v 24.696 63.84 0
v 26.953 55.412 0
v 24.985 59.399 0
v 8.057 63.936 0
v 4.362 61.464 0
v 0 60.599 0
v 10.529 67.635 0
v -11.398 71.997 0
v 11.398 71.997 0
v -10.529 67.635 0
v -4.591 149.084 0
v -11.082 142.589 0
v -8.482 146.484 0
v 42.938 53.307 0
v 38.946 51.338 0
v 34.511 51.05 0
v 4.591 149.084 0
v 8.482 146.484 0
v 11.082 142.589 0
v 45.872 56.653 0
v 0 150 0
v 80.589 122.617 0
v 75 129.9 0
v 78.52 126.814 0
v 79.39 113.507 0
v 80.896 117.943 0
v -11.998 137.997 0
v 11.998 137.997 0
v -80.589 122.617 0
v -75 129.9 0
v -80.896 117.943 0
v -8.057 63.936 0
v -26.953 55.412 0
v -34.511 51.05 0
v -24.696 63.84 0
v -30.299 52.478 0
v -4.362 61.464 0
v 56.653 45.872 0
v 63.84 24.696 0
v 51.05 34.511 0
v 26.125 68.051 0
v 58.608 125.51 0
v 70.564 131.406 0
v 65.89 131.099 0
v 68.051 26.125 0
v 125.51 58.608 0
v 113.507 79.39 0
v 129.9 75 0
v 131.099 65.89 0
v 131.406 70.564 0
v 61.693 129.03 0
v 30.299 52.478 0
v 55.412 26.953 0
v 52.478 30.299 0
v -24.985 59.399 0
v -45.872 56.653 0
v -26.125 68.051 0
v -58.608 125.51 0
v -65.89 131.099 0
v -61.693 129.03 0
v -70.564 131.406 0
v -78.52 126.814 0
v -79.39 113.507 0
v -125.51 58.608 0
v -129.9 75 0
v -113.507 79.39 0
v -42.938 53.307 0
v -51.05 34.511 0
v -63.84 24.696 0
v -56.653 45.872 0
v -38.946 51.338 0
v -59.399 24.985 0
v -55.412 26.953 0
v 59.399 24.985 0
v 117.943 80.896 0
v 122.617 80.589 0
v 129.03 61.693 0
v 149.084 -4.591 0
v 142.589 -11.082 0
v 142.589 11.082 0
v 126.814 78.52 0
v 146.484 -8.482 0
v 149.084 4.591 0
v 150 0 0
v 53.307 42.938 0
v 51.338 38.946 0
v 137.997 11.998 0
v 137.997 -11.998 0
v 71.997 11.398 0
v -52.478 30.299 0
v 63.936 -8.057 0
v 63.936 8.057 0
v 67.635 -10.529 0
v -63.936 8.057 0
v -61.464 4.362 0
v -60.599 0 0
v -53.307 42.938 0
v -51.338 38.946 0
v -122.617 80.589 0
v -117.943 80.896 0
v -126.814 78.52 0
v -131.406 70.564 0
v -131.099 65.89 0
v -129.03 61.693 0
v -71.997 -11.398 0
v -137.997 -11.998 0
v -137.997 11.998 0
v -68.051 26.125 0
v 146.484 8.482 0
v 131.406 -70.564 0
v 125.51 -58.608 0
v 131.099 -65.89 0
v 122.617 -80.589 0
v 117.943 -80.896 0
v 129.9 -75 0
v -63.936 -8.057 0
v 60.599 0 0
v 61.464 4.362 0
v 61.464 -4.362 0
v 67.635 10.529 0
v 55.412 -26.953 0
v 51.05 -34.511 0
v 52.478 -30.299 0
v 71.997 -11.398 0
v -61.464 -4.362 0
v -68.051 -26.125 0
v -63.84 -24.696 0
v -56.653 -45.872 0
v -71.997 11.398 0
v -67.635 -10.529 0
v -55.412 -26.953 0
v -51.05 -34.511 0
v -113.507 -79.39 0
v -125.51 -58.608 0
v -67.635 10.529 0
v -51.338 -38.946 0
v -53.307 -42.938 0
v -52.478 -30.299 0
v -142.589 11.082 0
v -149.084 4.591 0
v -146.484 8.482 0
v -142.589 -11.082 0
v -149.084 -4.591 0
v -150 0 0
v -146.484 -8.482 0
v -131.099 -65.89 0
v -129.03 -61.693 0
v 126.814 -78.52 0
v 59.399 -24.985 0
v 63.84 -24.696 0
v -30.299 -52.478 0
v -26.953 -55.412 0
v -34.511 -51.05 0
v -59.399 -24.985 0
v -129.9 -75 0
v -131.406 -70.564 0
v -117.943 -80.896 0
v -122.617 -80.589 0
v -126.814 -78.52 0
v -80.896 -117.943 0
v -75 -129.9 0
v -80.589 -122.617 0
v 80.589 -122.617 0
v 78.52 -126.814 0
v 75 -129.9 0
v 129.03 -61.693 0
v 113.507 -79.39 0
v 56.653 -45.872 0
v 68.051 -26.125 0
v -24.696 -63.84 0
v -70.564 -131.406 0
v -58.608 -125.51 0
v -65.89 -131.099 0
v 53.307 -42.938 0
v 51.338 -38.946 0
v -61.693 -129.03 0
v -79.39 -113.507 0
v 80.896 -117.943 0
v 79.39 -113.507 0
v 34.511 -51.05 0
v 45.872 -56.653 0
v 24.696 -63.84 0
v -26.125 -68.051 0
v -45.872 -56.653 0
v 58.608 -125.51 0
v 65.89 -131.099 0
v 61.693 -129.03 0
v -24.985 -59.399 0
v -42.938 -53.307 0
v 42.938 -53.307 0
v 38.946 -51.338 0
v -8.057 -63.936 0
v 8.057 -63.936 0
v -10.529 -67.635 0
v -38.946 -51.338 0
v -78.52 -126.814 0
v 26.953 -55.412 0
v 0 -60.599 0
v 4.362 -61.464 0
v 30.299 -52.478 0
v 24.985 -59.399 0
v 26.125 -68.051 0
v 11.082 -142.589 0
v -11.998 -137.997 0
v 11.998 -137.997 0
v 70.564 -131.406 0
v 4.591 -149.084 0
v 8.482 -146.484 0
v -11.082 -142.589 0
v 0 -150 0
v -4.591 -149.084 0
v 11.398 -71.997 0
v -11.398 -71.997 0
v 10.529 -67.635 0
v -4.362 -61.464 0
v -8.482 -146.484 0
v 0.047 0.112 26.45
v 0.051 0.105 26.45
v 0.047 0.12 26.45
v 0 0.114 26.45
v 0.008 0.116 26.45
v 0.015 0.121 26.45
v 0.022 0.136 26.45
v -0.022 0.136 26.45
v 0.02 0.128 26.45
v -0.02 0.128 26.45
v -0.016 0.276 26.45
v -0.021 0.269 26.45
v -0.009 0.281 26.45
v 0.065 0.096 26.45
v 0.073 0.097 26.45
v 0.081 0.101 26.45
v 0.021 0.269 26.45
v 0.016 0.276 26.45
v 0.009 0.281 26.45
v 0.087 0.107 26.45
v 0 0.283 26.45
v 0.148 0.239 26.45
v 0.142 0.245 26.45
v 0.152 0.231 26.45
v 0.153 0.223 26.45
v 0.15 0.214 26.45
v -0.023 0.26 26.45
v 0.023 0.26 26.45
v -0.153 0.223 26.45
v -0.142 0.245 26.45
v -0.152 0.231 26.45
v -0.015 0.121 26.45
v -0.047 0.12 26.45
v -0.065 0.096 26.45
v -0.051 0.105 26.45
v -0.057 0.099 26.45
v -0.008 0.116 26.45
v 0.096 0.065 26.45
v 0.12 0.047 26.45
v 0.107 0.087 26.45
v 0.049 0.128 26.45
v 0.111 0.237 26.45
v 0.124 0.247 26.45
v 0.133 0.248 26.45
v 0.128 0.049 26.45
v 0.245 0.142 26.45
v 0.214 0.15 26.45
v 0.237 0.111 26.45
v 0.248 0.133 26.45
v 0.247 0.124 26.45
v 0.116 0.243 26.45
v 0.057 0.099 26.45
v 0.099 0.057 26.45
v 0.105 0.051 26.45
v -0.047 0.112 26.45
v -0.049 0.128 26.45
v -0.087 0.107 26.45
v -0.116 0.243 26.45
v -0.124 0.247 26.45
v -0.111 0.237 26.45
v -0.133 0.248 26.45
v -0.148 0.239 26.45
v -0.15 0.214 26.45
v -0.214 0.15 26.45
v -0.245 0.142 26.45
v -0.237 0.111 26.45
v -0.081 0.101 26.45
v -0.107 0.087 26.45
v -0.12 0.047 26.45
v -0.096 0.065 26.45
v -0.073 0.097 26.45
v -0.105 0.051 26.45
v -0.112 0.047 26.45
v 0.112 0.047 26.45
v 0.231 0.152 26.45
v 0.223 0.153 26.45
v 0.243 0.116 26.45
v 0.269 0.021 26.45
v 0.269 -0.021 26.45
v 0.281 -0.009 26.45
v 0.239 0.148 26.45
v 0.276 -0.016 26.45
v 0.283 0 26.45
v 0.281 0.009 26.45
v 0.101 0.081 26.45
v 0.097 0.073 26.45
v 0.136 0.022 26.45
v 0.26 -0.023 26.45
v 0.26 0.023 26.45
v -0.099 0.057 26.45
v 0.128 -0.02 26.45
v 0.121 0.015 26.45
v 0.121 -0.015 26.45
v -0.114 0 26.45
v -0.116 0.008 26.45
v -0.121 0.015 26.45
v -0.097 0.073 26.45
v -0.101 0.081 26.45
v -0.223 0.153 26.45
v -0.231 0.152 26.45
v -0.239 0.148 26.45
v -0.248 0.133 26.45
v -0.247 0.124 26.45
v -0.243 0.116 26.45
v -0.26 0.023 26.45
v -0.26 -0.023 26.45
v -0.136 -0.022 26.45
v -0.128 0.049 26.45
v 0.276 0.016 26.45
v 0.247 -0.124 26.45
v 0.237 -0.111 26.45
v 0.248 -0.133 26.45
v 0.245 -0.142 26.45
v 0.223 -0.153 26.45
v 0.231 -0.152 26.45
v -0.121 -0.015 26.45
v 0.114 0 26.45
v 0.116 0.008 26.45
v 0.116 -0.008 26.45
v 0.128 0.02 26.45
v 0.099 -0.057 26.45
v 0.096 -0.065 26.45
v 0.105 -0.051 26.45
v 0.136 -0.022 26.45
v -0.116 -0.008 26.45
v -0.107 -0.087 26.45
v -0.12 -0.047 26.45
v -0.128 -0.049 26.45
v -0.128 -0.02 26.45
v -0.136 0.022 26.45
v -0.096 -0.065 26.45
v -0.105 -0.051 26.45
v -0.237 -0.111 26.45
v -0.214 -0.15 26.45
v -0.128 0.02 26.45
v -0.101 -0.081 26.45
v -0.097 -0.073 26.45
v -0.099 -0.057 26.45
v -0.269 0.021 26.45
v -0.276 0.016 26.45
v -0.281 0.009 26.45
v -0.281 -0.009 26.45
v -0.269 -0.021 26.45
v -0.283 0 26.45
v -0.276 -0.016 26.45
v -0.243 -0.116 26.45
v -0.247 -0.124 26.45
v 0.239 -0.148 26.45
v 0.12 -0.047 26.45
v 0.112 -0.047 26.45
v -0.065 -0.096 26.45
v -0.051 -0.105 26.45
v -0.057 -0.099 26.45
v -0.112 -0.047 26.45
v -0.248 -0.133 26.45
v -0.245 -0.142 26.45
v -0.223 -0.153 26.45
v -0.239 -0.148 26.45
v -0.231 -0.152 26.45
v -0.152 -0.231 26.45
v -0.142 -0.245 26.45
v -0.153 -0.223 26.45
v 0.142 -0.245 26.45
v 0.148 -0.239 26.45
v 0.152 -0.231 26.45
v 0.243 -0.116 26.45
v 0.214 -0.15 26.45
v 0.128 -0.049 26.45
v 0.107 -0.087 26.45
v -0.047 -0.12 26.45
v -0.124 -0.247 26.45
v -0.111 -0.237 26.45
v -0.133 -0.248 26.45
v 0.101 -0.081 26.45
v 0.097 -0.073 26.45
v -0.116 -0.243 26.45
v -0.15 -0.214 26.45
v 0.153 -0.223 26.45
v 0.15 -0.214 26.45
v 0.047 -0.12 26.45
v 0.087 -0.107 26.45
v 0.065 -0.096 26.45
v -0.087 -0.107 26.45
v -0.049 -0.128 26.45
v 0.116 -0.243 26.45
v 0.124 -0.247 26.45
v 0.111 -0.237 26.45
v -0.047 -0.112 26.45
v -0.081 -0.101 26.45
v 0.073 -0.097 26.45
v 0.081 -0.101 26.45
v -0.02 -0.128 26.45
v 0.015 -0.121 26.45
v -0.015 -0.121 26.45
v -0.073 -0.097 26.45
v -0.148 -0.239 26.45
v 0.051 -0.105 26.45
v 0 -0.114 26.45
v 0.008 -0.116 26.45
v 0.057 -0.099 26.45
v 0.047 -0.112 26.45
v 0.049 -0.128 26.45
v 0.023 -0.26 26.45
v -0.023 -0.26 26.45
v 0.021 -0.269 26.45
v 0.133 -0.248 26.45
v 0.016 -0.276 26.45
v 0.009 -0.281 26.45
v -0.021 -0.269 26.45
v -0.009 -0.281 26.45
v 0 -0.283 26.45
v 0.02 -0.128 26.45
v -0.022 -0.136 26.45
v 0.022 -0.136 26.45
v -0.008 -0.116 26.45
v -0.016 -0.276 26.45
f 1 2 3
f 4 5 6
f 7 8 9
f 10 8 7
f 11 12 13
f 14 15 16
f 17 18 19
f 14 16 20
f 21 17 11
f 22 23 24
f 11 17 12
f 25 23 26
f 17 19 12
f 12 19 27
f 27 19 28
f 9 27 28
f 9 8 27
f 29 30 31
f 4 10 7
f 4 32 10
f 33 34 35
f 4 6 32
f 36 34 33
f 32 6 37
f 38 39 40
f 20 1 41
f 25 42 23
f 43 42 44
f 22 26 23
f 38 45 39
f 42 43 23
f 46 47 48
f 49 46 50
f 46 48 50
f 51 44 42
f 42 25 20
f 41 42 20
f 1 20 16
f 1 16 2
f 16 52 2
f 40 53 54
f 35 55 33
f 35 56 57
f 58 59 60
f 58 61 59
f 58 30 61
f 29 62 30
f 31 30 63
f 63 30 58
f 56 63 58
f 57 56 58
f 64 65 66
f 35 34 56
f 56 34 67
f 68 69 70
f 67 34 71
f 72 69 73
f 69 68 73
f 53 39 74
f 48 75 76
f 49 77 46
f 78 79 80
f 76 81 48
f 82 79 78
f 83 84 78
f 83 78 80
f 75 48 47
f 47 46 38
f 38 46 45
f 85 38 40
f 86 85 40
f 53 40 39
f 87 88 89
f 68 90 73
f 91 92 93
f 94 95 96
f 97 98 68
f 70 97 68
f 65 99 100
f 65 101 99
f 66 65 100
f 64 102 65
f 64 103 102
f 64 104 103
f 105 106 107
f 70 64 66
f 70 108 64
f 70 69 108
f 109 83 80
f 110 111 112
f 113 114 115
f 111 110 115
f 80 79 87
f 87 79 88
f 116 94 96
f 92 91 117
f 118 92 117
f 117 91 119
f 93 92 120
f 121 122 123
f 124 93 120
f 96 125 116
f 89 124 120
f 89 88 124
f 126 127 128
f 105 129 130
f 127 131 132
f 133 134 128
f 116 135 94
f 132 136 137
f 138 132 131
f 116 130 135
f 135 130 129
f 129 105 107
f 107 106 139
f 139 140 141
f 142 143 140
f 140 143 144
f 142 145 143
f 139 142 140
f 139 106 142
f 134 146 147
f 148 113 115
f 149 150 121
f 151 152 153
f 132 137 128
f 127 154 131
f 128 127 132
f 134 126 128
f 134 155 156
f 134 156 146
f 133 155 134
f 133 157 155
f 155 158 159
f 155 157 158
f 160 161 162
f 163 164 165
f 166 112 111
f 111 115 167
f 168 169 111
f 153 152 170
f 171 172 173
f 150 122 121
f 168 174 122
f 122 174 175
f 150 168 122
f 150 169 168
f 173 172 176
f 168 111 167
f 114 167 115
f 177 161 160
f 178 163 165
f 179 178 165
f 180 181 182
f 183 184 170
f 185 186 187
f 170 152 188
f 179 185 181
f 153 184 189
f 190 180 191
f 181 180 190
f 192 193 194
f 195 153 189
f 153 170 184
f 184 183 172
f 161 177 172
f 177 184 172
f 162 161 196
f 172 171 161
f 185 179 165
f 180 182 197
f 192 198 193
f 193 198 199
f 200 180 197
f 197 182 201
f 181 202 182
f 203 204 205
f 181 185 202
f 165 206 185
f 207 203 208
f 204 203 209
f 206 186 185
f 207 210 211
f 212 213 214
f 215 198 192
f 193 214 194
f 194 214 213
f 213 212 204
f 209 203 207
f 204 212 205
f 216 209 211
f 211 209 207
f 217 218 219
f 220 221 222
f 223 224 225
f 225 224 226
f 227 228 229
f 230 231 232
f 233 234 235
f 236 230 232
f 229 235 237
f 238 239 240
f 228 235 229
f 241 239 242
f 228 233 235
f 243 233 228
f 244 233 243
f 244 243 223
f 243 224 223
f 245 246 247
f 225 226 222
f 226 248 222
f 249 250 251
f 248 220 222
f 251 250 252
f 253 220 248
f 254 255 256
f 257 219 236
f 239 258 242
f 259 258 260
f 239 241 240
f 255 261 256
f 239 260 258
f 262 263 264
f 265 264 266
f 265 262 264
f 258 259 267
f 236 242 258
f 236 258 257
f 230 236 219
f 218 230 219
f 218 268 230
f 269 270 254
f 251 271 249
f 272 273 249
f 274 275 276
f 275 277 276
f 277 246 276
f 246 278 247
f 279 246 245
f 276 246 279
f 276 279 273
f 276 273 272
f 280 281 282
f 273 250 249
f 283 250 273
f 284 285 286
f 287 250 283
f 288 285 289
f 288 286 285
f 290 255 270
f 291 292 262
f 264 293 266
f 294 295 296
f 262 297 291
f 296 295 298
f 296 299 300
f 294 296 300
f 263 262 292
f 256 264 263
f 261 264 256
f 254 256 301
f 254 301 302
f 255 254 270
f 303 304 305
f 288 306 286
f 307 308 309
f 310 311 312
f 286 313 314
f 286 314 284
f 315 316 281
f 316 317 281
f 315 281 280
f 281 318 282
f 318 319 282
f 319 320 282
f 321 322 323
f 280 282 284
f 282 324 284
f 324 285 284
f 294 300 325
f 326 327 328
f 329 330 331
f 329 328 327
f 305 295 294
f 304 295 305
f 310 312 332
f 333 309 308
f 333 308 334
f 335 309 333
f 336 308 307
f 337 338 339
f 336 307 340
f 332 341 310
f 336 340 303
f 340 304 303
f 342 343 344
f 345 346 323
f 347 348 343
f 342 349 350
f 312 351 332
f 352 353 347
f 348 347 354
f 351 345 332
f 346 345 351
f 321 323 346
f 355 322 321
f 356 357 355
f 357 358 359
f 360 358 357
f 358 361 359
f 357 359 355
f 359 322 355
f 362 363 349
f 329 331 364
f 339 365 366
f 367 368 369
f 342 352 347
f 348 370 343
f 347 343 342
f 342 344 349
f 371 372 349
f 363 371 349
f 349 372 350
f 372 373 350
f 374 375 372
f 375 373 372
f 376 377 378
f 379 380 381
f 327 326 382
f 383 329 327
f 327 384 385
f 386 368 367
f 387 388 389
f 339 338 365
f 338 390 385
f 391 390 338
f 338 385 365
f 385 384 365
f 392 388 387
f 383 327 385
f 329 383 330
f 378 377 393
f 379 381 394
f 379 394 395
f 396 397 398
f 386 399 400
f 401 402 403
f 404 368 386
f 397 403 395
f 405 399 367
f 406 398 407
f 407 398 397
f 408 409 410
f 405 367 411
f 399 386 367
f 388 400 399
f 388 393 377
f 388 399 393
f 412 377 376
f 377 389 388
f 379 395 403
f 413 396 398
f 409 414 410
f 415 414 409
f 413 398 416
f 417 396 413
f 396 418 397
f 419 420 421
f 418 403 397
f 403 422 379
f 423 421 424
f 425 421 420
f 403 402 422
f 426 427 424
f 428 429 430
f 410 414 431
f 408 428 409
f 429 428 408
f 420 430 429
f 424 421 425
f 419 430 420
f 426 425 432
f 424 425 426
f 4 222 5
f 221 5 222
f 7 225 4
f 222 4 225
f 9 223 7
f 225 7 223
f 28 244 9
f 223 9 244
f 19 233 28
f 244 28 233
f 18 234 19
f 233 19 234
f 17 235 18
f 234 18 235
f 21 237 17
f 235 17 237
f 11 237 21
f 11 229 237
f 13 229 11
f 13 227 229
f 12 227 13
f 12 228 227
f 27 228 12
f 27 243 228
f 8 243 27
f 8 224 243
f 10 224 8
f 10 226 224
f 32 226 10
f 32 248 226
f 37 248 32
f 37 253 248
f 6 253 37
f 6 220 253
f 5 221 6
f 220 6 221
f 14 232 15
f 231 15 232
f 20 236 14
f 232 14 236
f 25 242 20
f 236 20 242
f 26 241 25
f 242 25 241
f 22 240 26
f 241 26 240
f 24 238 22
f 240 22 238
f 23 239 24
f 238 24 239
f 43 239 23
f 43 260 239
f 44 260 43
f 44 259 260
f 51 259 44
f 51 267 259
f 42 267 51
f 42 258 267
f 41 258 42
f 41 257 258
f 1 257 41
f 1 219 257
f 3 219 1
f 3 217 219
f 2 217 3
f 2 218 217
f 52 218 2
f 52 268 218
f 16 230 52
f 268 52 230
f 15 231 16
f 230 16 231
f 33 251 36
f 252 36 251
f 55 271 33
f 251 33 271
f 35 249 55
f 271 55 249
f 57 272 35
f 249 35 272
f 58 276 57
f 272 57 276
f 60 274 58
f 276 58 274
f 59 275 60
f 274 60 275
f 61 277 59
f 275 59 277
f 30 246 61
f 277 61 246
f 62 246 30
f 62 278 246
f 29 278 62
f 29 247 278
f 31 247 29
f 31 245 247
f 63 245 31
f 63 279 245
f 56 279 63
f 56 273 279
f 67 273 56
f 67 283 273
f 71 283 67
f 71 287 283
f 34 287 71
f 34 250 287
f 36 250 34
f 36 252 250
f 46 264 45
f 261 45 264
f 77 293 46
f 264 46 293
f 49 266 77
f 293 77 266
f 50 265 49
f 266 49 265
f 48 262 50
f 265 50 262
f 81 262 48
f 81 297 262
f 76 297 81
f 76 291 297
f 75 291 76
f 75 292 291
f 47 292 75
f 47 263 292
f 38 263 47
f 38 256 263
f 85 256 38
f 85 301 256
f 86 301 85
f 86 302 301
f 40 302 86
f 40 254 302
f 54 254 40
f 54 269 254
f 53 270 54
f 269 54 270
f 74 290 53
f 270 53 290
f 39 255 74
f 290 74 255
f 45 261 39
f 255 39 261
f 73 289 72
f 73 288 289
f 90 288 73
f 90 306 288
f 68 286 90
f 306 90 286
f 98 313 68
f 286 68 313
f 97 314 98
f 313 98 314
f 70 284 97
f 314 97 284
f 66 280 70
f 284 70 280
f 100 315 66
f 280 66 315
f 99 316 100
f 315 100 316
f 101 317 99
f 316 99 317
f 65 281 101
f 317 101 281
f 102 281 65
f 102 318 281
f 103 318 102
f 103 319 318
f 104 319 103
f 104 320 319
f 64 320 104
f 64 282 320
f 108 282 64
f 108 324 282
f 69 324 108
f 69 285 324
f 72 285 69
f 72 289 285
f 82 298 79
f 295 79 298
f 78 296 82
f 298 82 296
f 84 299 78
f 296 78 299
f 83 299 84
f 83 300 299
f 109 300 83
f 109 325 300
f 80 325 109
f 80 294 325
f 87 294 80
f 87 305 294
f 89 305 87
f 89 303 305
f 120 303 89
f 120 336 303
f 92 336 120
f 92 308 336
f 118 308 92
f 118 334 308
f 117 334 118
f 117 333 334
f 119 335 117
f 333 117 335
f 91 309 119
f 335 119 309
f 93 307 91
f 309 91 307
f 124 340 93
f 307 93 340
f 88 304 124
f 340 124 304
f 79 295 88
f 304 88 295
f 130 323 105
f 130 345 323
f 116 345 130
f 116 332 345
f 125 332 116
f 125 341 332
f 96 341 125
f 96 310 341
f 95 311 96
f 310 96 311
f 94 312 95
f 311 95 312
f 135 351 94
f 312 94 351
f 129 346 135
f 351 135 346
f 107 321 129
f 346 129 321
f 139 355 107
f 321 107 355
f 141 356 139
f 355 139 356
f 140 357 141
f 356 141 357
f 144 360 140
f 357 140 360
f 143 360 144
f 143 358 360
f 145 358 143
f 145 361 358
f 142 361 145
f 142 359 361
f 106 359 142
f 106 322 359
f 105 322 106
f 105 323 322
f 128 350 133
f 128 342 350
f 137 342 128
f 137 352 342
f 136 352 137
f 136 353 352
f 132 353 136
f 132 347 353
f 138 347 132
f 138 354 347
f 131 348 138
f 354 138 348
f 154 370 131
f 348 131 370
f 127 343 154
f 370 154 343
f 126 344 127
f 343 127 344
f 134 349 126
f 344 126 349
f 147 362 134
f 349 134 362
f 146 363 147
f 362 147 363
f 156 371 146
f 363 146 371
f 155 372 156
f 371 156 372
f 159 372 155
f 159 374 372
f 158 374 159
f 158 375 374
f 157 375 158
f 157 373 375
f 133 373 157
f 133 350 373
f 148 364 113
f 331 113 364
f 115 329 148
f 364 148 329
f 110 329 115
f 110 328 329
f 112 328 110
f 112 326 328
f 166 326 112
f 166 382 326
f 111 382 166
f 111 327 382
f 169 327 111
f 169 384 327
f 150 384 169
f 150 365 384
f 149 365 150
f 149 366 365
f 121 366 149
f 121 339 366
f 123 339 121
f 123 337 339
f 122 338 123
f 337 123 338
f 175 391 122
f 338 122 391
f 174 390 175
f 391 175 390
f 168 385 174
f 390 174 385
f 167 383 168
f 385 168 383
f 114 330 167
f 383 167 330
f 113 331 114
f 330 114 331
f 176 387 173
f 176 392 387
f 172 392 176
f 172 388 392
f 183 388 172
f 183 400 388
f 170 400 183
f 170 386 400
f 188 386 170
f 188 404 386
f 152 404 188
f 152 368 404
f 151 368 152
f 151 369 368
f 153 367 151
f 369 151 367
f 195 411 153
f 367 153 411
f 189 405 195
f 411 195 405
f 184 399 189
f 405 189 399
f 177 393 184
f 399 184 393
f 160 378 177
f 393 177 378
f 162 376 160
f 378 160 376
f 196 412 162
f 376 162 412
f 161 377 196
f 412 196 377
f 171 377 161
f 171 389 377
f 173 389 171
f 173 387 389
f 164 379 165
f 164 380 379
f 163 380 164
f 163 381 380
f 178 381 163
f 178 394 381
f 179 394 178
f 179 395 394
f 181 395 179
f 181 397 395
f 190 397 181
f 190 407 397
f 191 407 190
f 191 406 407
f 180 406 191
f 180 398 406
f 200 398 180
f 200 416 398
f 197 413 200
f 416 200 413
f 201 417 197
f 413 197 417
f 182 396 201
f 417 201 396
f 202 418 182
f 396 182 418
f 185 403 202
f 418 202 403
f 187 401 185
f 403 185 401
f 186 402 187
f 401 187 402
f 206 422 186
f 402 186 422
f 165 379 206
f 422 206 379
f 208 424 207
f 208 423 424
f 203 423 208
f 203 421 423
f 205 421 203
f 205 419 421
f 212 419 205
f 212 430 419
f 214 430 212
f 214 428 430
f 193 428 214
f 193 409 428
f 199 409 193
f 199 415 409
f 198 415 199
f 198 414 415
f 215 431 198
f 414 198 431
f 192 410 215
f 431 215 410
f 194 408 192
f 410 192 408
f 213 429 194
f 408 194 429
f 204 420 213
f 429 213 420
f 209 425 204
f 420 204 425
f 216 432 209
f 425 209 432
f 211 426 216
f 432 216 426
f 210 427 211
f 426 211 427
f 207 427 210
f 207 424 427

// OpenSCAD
// Modular shadow lamp — millimetres. Read README.md and OPTICS.md.
// Self-contained OpenSCAD 2021.01 / MakerWorld Parametric Model Maker.
// The wall is XY at z=0; +z points into the room. Filled SVG areas transmit light.

/* [View] */
Output = "Assembly"; // [Assembly,Projection,Body,Cover,Print layout,Stack preview,Diagnostics]
Show_rays = false;
Show_report = true;

/* [Artwork] */
Use_svg = false;
// MakerWorld recognizes this variable as an SVG upload control.
Svg_file = "default.svg";
// Select the LONGER artwork axis. The other axis scales proportionally.
Svg_long_axis = "Y"; // [X,Y]
// Longest dimension of the complete artwork BEFORE central occlusion, in mm.
Shadow_length = 300; // [100:5:1500]
// Light shapes matches luminous outlines in the reference photo.
Artwork_mode = "Light shapes"; // [Light shapes,Dark silhouette]
Artwork_rotation = 0; // [-180:1:180]
// Smallest IMPORTANT line or gap, as % of the artwork's longest dimension.
// This is a declared design requirement, NOT an automatic SVG measurement.
Smallest_detail_percent = 5; // [0.1:0.1:20]

/* [Cylinder] */
Cylinder_diameter = 100; // [60:1:250]
// Total closed depth of one module, including its fitted cover.
Cylinder_height = 30; // [18:0.5:200]
Wall_thickness = 2; // [1.2:0.1:4]
// 0 = first module at wall; 1 = second module, etc. Recompute each module.
Module_index = 0; // [0:1:8]

/* [LED and optical quality] */
LED_position = "Automatic"; // [Automatic,Manual height]
// Height of the EMITTING CENTRE above this module's back, not package bottom.
Manual_LED_height = 24; // [0:0.1:200]
// Width of the actual emitting area, not the plastic lens or LED package.
Emitter_diameter = 0.2; // [0:0.01:5]
// Axial thickness of the emitting area. 0 assumes a planar emitter parallel to wall.
Emitter_axial_depth = 0; // [0:0.01:2]
Maximum_blur = 2; // [0.1:0.1:20]
Minimum_cut_width = 0.4; // [0.15:0.05:2]
// Emitting centre above the end of the printed pillar; measure your LED assembly.
Emitter_above_pillar = 3; // [1:0.1:10]
Pillar_diameter = 8; // [4:0.5:20]
Pillar_wire_bore = 3; // [1:0.1:6]

/* [Stencil supports] */
// Spokes interrupt light but can connect otherwise floating opaque islands.
// They do NOT guarantee connectivity for arbitrary artwork; run prepare_svg.py.
Support_bridges = true;
Bridge_count = 12; // [3:1:48]
Bridge_width = 0.8; // [0.4:0.1:2]
Bridge_rotation = 0; // [0:1:180]

/* [Joints and cover] */
Joint_depth = 2.5; // [1.5:0.1:4]
Joint_clearance = 0.2; // [0.1:0.05:0.4]
Cover_plate = 2; // [1.5:0.1:3]
// Radial pilot holes in female collars for optional retaining screws.
Retaining_screws = true;
Screw_pilot_diameter = 2.1; // [1.5:0.1:3]

/* [Quality] */
Cylinder_facets = 180; // [72:12:360]

/* [Hidden] */
$fn = Cylinder_facets;
eps = 0.02;
// prepare_svg.py replaces this block with normalized, embedded SVG geometry.
Embedded_artwork = false;
Embedded_radius_factor = 0.7071067811865476;
// Extra bridge angles added by the helper after checking the actual exported mesh.
Embedded_bridge_angles = [];
// BEGIN EMBEDDED ARTWORK
module embedded_artwork() { square(1, center=true); }
// END EMBEDDED ARTWORK

R = Cylinder_diameter/2;
Ri = R-Wall_thickness;
frame_width = max(4, Wall_thickness+2);
Rf = R-frame_width;
rear_floor = Joint_depth + 2;
rear_guard = 1;
front_guard = 3;
cover_depth = Joint_depth + Cover_plate;
pitch = Cylinder_height-cover_depth;
wall_offset = Module_index*pitch;
aperture_bottom = rear_floor+rear_guard;
aperture_top = pitch-front_guard;
tongue_outer = R-1.4;
tongue_inner = tongue_outer-1.6;
// A square's diagonal gives a conservative envelope for direct SVG import.
// The helper calculates a tighter radius from the actual polygon vertices.
k = Embedded_artwork ? Embedded_radius_factor : (Use_svg ? sqrt(2)/2 : 0.5);
detail_fraction = Smallest_detail_percent/100;
r_far = k*Shadow_length;

function off(H) = Module_index*(H-cover_depth);
function top(H) = off(H)+H-cover_depth-front_guard;
function bottom(H) = off(H)+aperture_bottom;
function ceiling(H) = off(H)+H-Cover_plate-1.5;
// Upper collar is thicker than the optical sidewall, hence Rf, not Ri.
function auto_source(H,L) = min(ceiling(H),
    k*L>Rf ? top(H)/(1-Rf/(k*L)) : ceiling(H));
function source(H,L) = LED_position=="Manual height" ? off(H)+Manual_LED_height : auto_source(H,L);
function dead_radius(H,L) = let(h=source(H,L))
    h>bottom(H) ? max(R*h/(h-bottom(H)), Pillar_diameter/2*h/Emitter_above_pillar) : 1e12;
// Least local stretch from wall artwork to inner cylindrical surface.
function cut_estimate(H,L) = let(h=source(H,L), r=k*L)
    detail_fraction*L*min(Ri/r,h*Ri/(r*r));
// Conservative sum of transverse and axial geometric source blur.
function blur_estimate(H,L) = let(h=source(H,L),r=k*L)
    max(0,r/Ri-1)*(Emitter_diameter+Emitter_axial_depth*r/max(h,eps));
function mechanical_ok(H,L) =
    H-cover_depth-front_guard > aperture_bottom+1 &&
    Ri>Pillar_diameter/2+5 && Rf>tongue_inner-3 &&
    tongue_inner-Joint_clearance>Rf &&
    tongue_outer+Joint_clearance+0.4<R-0.5 &&
    Pillar_wire_bore<Pillar_diameter-1.6 &&
    Screw_pilot_diameter<Joint_depth &&
    source(H,L)-off(H)-Emitter_above_pillar>rear_floor+1;
function quality_ok(H,L) = cut_estimate(H,L)>=Minimum_cut_width-1e-9 &&
    blur_estimate(H,L)<=Maximum_blur+1e-9;
function feasible(H,L) = mechanical_ok(H,L) && quality_ok(H,L) &&
    source(H,L)>bottom(H)+1 && source(H,L)<=ceiling(H)+1e-9 &&
    source(H,L)<=auto_source(H,L)+1e-9 &&
    L/2>dead_radius(H,L)+Minimum_cut_width;
// Quality decreases monotonically with L in automatic mode. Search 0.01 mm.
function max_length(H,lo,hi,n=18) = n==0 ? lo :
    let(mid=(lo+hi)/2) quality_ok(H,mid) ? max_length(H,mid,hi,n-1) : max_length(H,lo,mid,n-1);
function length_at_height(H) = quality_ok(H,Shadow_length) ? Shadow_length :
    quality_ok(H,2*R+1) ? floor(max_length(H,2*R+1,Shadow_length)*10)/10 : 0;
function cost(pair) = pow((pair[0]-Cylinder_height)/Cylinder_height,2)+
    pow((pair[1]-Shadow_length)/Shadow_length,2);
function best_pair(a,i=0,b=undef) = i>=len(a) ? b :
    best_pair(a,i+1,is_undef(b) || cost(a[i])<cost(b) ? a[i] : b);

h = source(Cylinder_height,Shadow_length);
local_h = h-wall_offset;
dead = dead_radius(Cylinder_height,Shadow_length);
valid = feasible(Cylinder_height,Shadow_length);
// Nearest means this explicitly weighted, bounded grid; never a global claim.
search_max = min(300,max(160,3*Cylinder_height));
suggestions = valid || LED_position!="Automatic" ? [] : [
    for(H=[Cylinder_height:1:search_max]) let(L=length_at_height(H))
        if(L>0 && feasible(H,L)) [H,L]
];
nearest = best_pair(suggestions);
same_height_L = valid ? Shadow_length : length_at_height(Cylinder_height);
same_length_options = valid ? [] : [for(H=[Cylinder_height:1:search_max])
    if(feasible(H,Shadow_length)) H];
same_length_H = len(same_length_options)>0 ? same_length_options[0] : undef;
suggestion_text = is_undef(nearest) ? "No candidate in search range; change diameter, detail or emitter." :
    str("Try height ",nearest[0]," mm, shadow ",nearest[1]," mm.");

assert(Cylinder_diameter>0 && Cylinder_height>0 && Shadow_length>0,"Dimensions must be positive.");
assert(Smallest_detail_percent>0 && Minimum_cut_width>0 && Maximum_blur>0,"Quality limits must be positive.");
assert(Emitter_diameter>=0 && Emitter_axial_depth>=0,"Emitter sizes cannot be negative.");
assert(Module_index>=0 && Module_index==floor(Module_index),"Module index must be a non-negative integer.");
assert(Bridge_count>=1 && Joint_clearance>=0 && Emitter_above_pillar>0,"Invalid support/joint parameters.");

echo("STATUS", valid ? "OPTICAL ENVELOPE PASSES; SVG topology still requires checking" :
    "GENERATION NOT POSSIBLE under the selected limits");
echo("LED centre, local XYZ mm",[0,0,local_h]);
echo("LED centre, wall XYZ mm",[0,0,h]);
echo("Closed first-module depth / stacking pitch mm",[Cylinder_height,pitch]);
echo("Central occlusion radius mm",dead);
echo("Conservative artwork radius / smallest declared detail mm",[r_far,detail_fraction*Shadow_length]);
echo("Estimated minimum cut / selected minimum mm",[cut_estimate(Cylinder_height,Shadow_length),Minimum_cut_width]);
echo("Estimated worst geometric blur / selected maximum mm",[blur_estimate(Cylinder_height,Shadow_length),Maximum_blur]);
echo("LED XY is the analytic minimax solution for a concentric 360-degree field; not an arbitrary-artwork optimum.");
echo("Preview is an ideal geometric footprint, not a photometric simulation. Source extent can only worsen it.");
echo("Centre is intentionally occluded; support spokes intentionally remove light. Floating islands are not auto-detected here.");
if(!valid) {
    echo("SUGGESTED sampled compromise [height,shadow] mm",nearest);
    echo("Keep height: shadow mm", feasible(Cylinder_height,same_height_L) ? same_height_L : "No feasible smaller length in range");
    echo("Keep shadow: height mm",is_undef(same_length_H) ? "No feasible height <= search limit" : same_length_H);
    echo("Search: height increases in 1 mm steps, <=300 mm; equal squared relative changes in height and shadow length.");
    if(LED_position!="Automatic") echo("Switch LED_position to Automatic for reliable suggestions.");
}

// An original, open-aperture sunburst demo; no external file required.
module demo_artwork() {
    for(a=[0:30:330]) rotate(a)
        hull() {
            translate([0.24,0]) circle(r=0.038,$fn=16);
            translate([0.46,0]) circle(r=0.04,$fn=16);
        }
}
module normalized_artwork() {
    if(Embedded_artwork) embedded_artwork();
    else if(Use_svg) {
        if(Svg_long_axis=="X") resize([1,0],auto=true) import(file=Svg_file,center=true,convexity=20);
        else resize([0,1],auto=true) import(file=Svg_file,center=true,convexity=20);
    } else demo_artwork();
}
module target_artwork() {
    rotate(Artwork_rotation) scale(Shadow_length) normalized_artwork();
}
module intended_light() {
    if(Artwork_mode=="Light shapes") target_artwork();
    else difference() { circle(r=r_far); target_artwork(); }
}
// A perspective cone. This cuts oblique tunnels through the FULL wall thickness.
// Cropping the extrusion just below its apex avoids degenerate mesh vertices.
module light_cone() {
    apex_gap = 0.05;
    translate([0,0,-wall_offset])
        linear_extrude(height=h-apex_gap,scale=apex_gap/h,convexity=30)
            intended_light();
}
// These wedges have constant angular width. Their shadows are exactly wedges.
module bridge_wedges_2d(radius) {
    angle = 2*asin(min(0.99,Bridge_width/(2*Ri)));
    angles = concat([for(a=[0:360/Bridge_count:360-360/Bridge_count]) a+Bridge_rotation],Embedded_bridge_angles);
    for(a=angles)
        rotate(a)
            polygon([[0,0],[radius*cos(angle/2),radius*sin(angle/2)],
                [radius*cos(angle/2),-radius*sin(angle/2)]]);
}
module optical_cutters() {
    difference() {
        intersection() {
            light_cone();
            translate([0,0,aperture_bottom]) cylinder(r=R+1,h=aperture_top-aperture_bottom);
        }
        if(Support_bridges) translate([0,0,aperture_bottom-eps])
            linear_extrude(height=aperture_top-aperture_bottom+2*eps)
                bridge_wedges_2d(R+3);
    }
}
module ring(outer,inner,height) {
    difference() { cylinder(r=outer,h=height); translate([0,0,-eps]) cylinder(r=inner,h=height+2*eps); }
}
module tongue() {
    ring(tongue_outer,tongue_inner,Joint_depth);
    // Registration key; all modules and their artwork share an angular datum.
    translate([tongue_outer-0.3,-1,0]) cube([0.7,2,Joint_depth]);
}
module socket() {
    translate([0,0,-eps]) ring(tongue_outer+Joint_clearance,
        tongue_inner-Joint_clearance,Joint_depth+Joint_clearance+eps);
    translate([tongue_outer-0.3-Joint_clearance,-1-Joint_clearance,-eps])
        cube([0.7+2*Joint_clearance,2+2*Joint_clearance,Joint_depth+Joint_clearance+eps]);
}
module retaining_holes() {
    if(Retaining_screws) for(a=[60,180,300]) rotate([0,0,a])
        translate([R+eps,0,Joint_depth/2]) rotate([0,-90,0])
            cylinder(d=Screw_pilot_diameter,h=R-tongue_inner+eps,$fn=24);
}
module keyhole() {
    // Two 3.5 mm screw shafts, 7 mm entry heads. Insert then slide lamp down 5 mm.
    linear_extrude(height=rear_floor+2*eps) union() {
        circle(d=7,$fn=32);
        hull() { circle(d=3.5,$fn=24); translate([0,5]) circle(d=3.5,$fn=24); }
    }
}
module body() {
    difference() {
        union() {
            difference() {
                union() {
                    cylinder(r=R,h=rear_floor);
                    ring(R,Ri,pitch);
                    translate([0,0,aperture_top]) ring(R,Rf,front_guard);
                    translate([0,0,pitch-eps]) tongue();
                }
                optical_cutters();
            }
            // Thin hollow pedestal. Emitting centre is Emitter_above_pillar higher.
            translate([0,0,rear_floor-eps])
                cylinder(d=Pillar_diameter,h=local_h-Emitter_above_pillar-rear_floor+eps);
        }
        socket();
        if(Module_index>0) retaining_holes();
        translate([0,0,-eps]) cylinder(d=Pillar_wire_bore,h=local_h+eps,$fn=32);
        if(Module_index==0) for(x=[-R/2,R/2]) translate([x,0,-eps]) keyhole();
        // Rear cable route, contained under the opaque rear floor.
        translate([-Pillar_wire_bore/2,-R-1,-eps]) cube([Pillar_wire_bore,R+1,1.2]);
    }
}
module cover() {
    difference() {
        cylinder(r=R,h=cover_depth);
        socket();
        // Electronics clearance under the opaque lid plate.
        translate([0,0,-eps]) cylinder(r=Rf,h=Joint_depth+Joint_clearance+eps);
        retaining_holes();
    }
}
module printable_cover() {
    translate([0,0,cover_depth]) rotate([180,0,0]) cover();
}
module projected_light() {
    difference() {
        intersection() {
            intended_light();
            // Outer opening edge clips rays when the source is above the aperture.
            circle(r=h>wall_offset+aperture_top ?
                Ri*h/(h-wall_offset-aperture_top) : max(Shadow_length*3,r_far*3));
            // Thicker front rim may clip earlier than the optical sidewall.
            circle(r=h>wall_offset+aperture_top ?
                Rf*h/(h-wall_offset-aperture_top) : max(Shadow_length*3,r_far*3));
        }
        circle(r=dead);
        if(Support_bridges) bridge_wedges_2d(max(Shadow_length*3,r_far*3));
    }
}
module led_marker() {
    translate([0,0,h]) color([1,0.62,0.12]) sphere(r=1.3,$fn=24);
}
module wall_preview() {
    extent = max(Shadow_length*0.62,R*1.5);
    color([0.055,0.066,0.08]) translate([-extent,-extent,-1.2]) cube([2*extent,2*extent,1]);
    color([1,0.83,0.42]) translate([0,0,-0.15]) linear_extrude(height=0.08) projected_light();
}
module sample_rays() {
    for(a=[15:60:315]) color([1,0.75,0.2,0.45]) hull() {
        translate([0,0,h]) sphere(r=0.2,$fn=8);
        translate([r_far*cos(a),r_far*sin(a),0]) sphere(r=0.2,$fn=8);
    }
}
module diagnostics() {
    lines = [valid ? "OPTICAL ENVELOPE: PASS" : "GENERATION NOT POSSIBLE",
        str("LED xyz = 0, 0, ",round(local_h*100)/100," mm (local)"),
        str("Centre hidden: radius ",round(dead*10)/10," mm"),
        str("Cut estimate: ",round(cut_estimate(Cylinder_height,Shadow_length)*1000)/1000," mm"),
        str("Blur estimate: ",round(blur_estimate(Cylinder_height,Shadow_length)*100)/100," mm"),
        valid ? "Check stencil connectivity before printing." : suggestion_text];
    for(i=[0:len(lines)-1]) translate([0,-i*6,0])
        color(valid ? [0.4,0.9,0.6] : [1,0.25,0.15])
            linear_extrude(height=0.6) text(lines[i],size=4);
}

light_cone();
